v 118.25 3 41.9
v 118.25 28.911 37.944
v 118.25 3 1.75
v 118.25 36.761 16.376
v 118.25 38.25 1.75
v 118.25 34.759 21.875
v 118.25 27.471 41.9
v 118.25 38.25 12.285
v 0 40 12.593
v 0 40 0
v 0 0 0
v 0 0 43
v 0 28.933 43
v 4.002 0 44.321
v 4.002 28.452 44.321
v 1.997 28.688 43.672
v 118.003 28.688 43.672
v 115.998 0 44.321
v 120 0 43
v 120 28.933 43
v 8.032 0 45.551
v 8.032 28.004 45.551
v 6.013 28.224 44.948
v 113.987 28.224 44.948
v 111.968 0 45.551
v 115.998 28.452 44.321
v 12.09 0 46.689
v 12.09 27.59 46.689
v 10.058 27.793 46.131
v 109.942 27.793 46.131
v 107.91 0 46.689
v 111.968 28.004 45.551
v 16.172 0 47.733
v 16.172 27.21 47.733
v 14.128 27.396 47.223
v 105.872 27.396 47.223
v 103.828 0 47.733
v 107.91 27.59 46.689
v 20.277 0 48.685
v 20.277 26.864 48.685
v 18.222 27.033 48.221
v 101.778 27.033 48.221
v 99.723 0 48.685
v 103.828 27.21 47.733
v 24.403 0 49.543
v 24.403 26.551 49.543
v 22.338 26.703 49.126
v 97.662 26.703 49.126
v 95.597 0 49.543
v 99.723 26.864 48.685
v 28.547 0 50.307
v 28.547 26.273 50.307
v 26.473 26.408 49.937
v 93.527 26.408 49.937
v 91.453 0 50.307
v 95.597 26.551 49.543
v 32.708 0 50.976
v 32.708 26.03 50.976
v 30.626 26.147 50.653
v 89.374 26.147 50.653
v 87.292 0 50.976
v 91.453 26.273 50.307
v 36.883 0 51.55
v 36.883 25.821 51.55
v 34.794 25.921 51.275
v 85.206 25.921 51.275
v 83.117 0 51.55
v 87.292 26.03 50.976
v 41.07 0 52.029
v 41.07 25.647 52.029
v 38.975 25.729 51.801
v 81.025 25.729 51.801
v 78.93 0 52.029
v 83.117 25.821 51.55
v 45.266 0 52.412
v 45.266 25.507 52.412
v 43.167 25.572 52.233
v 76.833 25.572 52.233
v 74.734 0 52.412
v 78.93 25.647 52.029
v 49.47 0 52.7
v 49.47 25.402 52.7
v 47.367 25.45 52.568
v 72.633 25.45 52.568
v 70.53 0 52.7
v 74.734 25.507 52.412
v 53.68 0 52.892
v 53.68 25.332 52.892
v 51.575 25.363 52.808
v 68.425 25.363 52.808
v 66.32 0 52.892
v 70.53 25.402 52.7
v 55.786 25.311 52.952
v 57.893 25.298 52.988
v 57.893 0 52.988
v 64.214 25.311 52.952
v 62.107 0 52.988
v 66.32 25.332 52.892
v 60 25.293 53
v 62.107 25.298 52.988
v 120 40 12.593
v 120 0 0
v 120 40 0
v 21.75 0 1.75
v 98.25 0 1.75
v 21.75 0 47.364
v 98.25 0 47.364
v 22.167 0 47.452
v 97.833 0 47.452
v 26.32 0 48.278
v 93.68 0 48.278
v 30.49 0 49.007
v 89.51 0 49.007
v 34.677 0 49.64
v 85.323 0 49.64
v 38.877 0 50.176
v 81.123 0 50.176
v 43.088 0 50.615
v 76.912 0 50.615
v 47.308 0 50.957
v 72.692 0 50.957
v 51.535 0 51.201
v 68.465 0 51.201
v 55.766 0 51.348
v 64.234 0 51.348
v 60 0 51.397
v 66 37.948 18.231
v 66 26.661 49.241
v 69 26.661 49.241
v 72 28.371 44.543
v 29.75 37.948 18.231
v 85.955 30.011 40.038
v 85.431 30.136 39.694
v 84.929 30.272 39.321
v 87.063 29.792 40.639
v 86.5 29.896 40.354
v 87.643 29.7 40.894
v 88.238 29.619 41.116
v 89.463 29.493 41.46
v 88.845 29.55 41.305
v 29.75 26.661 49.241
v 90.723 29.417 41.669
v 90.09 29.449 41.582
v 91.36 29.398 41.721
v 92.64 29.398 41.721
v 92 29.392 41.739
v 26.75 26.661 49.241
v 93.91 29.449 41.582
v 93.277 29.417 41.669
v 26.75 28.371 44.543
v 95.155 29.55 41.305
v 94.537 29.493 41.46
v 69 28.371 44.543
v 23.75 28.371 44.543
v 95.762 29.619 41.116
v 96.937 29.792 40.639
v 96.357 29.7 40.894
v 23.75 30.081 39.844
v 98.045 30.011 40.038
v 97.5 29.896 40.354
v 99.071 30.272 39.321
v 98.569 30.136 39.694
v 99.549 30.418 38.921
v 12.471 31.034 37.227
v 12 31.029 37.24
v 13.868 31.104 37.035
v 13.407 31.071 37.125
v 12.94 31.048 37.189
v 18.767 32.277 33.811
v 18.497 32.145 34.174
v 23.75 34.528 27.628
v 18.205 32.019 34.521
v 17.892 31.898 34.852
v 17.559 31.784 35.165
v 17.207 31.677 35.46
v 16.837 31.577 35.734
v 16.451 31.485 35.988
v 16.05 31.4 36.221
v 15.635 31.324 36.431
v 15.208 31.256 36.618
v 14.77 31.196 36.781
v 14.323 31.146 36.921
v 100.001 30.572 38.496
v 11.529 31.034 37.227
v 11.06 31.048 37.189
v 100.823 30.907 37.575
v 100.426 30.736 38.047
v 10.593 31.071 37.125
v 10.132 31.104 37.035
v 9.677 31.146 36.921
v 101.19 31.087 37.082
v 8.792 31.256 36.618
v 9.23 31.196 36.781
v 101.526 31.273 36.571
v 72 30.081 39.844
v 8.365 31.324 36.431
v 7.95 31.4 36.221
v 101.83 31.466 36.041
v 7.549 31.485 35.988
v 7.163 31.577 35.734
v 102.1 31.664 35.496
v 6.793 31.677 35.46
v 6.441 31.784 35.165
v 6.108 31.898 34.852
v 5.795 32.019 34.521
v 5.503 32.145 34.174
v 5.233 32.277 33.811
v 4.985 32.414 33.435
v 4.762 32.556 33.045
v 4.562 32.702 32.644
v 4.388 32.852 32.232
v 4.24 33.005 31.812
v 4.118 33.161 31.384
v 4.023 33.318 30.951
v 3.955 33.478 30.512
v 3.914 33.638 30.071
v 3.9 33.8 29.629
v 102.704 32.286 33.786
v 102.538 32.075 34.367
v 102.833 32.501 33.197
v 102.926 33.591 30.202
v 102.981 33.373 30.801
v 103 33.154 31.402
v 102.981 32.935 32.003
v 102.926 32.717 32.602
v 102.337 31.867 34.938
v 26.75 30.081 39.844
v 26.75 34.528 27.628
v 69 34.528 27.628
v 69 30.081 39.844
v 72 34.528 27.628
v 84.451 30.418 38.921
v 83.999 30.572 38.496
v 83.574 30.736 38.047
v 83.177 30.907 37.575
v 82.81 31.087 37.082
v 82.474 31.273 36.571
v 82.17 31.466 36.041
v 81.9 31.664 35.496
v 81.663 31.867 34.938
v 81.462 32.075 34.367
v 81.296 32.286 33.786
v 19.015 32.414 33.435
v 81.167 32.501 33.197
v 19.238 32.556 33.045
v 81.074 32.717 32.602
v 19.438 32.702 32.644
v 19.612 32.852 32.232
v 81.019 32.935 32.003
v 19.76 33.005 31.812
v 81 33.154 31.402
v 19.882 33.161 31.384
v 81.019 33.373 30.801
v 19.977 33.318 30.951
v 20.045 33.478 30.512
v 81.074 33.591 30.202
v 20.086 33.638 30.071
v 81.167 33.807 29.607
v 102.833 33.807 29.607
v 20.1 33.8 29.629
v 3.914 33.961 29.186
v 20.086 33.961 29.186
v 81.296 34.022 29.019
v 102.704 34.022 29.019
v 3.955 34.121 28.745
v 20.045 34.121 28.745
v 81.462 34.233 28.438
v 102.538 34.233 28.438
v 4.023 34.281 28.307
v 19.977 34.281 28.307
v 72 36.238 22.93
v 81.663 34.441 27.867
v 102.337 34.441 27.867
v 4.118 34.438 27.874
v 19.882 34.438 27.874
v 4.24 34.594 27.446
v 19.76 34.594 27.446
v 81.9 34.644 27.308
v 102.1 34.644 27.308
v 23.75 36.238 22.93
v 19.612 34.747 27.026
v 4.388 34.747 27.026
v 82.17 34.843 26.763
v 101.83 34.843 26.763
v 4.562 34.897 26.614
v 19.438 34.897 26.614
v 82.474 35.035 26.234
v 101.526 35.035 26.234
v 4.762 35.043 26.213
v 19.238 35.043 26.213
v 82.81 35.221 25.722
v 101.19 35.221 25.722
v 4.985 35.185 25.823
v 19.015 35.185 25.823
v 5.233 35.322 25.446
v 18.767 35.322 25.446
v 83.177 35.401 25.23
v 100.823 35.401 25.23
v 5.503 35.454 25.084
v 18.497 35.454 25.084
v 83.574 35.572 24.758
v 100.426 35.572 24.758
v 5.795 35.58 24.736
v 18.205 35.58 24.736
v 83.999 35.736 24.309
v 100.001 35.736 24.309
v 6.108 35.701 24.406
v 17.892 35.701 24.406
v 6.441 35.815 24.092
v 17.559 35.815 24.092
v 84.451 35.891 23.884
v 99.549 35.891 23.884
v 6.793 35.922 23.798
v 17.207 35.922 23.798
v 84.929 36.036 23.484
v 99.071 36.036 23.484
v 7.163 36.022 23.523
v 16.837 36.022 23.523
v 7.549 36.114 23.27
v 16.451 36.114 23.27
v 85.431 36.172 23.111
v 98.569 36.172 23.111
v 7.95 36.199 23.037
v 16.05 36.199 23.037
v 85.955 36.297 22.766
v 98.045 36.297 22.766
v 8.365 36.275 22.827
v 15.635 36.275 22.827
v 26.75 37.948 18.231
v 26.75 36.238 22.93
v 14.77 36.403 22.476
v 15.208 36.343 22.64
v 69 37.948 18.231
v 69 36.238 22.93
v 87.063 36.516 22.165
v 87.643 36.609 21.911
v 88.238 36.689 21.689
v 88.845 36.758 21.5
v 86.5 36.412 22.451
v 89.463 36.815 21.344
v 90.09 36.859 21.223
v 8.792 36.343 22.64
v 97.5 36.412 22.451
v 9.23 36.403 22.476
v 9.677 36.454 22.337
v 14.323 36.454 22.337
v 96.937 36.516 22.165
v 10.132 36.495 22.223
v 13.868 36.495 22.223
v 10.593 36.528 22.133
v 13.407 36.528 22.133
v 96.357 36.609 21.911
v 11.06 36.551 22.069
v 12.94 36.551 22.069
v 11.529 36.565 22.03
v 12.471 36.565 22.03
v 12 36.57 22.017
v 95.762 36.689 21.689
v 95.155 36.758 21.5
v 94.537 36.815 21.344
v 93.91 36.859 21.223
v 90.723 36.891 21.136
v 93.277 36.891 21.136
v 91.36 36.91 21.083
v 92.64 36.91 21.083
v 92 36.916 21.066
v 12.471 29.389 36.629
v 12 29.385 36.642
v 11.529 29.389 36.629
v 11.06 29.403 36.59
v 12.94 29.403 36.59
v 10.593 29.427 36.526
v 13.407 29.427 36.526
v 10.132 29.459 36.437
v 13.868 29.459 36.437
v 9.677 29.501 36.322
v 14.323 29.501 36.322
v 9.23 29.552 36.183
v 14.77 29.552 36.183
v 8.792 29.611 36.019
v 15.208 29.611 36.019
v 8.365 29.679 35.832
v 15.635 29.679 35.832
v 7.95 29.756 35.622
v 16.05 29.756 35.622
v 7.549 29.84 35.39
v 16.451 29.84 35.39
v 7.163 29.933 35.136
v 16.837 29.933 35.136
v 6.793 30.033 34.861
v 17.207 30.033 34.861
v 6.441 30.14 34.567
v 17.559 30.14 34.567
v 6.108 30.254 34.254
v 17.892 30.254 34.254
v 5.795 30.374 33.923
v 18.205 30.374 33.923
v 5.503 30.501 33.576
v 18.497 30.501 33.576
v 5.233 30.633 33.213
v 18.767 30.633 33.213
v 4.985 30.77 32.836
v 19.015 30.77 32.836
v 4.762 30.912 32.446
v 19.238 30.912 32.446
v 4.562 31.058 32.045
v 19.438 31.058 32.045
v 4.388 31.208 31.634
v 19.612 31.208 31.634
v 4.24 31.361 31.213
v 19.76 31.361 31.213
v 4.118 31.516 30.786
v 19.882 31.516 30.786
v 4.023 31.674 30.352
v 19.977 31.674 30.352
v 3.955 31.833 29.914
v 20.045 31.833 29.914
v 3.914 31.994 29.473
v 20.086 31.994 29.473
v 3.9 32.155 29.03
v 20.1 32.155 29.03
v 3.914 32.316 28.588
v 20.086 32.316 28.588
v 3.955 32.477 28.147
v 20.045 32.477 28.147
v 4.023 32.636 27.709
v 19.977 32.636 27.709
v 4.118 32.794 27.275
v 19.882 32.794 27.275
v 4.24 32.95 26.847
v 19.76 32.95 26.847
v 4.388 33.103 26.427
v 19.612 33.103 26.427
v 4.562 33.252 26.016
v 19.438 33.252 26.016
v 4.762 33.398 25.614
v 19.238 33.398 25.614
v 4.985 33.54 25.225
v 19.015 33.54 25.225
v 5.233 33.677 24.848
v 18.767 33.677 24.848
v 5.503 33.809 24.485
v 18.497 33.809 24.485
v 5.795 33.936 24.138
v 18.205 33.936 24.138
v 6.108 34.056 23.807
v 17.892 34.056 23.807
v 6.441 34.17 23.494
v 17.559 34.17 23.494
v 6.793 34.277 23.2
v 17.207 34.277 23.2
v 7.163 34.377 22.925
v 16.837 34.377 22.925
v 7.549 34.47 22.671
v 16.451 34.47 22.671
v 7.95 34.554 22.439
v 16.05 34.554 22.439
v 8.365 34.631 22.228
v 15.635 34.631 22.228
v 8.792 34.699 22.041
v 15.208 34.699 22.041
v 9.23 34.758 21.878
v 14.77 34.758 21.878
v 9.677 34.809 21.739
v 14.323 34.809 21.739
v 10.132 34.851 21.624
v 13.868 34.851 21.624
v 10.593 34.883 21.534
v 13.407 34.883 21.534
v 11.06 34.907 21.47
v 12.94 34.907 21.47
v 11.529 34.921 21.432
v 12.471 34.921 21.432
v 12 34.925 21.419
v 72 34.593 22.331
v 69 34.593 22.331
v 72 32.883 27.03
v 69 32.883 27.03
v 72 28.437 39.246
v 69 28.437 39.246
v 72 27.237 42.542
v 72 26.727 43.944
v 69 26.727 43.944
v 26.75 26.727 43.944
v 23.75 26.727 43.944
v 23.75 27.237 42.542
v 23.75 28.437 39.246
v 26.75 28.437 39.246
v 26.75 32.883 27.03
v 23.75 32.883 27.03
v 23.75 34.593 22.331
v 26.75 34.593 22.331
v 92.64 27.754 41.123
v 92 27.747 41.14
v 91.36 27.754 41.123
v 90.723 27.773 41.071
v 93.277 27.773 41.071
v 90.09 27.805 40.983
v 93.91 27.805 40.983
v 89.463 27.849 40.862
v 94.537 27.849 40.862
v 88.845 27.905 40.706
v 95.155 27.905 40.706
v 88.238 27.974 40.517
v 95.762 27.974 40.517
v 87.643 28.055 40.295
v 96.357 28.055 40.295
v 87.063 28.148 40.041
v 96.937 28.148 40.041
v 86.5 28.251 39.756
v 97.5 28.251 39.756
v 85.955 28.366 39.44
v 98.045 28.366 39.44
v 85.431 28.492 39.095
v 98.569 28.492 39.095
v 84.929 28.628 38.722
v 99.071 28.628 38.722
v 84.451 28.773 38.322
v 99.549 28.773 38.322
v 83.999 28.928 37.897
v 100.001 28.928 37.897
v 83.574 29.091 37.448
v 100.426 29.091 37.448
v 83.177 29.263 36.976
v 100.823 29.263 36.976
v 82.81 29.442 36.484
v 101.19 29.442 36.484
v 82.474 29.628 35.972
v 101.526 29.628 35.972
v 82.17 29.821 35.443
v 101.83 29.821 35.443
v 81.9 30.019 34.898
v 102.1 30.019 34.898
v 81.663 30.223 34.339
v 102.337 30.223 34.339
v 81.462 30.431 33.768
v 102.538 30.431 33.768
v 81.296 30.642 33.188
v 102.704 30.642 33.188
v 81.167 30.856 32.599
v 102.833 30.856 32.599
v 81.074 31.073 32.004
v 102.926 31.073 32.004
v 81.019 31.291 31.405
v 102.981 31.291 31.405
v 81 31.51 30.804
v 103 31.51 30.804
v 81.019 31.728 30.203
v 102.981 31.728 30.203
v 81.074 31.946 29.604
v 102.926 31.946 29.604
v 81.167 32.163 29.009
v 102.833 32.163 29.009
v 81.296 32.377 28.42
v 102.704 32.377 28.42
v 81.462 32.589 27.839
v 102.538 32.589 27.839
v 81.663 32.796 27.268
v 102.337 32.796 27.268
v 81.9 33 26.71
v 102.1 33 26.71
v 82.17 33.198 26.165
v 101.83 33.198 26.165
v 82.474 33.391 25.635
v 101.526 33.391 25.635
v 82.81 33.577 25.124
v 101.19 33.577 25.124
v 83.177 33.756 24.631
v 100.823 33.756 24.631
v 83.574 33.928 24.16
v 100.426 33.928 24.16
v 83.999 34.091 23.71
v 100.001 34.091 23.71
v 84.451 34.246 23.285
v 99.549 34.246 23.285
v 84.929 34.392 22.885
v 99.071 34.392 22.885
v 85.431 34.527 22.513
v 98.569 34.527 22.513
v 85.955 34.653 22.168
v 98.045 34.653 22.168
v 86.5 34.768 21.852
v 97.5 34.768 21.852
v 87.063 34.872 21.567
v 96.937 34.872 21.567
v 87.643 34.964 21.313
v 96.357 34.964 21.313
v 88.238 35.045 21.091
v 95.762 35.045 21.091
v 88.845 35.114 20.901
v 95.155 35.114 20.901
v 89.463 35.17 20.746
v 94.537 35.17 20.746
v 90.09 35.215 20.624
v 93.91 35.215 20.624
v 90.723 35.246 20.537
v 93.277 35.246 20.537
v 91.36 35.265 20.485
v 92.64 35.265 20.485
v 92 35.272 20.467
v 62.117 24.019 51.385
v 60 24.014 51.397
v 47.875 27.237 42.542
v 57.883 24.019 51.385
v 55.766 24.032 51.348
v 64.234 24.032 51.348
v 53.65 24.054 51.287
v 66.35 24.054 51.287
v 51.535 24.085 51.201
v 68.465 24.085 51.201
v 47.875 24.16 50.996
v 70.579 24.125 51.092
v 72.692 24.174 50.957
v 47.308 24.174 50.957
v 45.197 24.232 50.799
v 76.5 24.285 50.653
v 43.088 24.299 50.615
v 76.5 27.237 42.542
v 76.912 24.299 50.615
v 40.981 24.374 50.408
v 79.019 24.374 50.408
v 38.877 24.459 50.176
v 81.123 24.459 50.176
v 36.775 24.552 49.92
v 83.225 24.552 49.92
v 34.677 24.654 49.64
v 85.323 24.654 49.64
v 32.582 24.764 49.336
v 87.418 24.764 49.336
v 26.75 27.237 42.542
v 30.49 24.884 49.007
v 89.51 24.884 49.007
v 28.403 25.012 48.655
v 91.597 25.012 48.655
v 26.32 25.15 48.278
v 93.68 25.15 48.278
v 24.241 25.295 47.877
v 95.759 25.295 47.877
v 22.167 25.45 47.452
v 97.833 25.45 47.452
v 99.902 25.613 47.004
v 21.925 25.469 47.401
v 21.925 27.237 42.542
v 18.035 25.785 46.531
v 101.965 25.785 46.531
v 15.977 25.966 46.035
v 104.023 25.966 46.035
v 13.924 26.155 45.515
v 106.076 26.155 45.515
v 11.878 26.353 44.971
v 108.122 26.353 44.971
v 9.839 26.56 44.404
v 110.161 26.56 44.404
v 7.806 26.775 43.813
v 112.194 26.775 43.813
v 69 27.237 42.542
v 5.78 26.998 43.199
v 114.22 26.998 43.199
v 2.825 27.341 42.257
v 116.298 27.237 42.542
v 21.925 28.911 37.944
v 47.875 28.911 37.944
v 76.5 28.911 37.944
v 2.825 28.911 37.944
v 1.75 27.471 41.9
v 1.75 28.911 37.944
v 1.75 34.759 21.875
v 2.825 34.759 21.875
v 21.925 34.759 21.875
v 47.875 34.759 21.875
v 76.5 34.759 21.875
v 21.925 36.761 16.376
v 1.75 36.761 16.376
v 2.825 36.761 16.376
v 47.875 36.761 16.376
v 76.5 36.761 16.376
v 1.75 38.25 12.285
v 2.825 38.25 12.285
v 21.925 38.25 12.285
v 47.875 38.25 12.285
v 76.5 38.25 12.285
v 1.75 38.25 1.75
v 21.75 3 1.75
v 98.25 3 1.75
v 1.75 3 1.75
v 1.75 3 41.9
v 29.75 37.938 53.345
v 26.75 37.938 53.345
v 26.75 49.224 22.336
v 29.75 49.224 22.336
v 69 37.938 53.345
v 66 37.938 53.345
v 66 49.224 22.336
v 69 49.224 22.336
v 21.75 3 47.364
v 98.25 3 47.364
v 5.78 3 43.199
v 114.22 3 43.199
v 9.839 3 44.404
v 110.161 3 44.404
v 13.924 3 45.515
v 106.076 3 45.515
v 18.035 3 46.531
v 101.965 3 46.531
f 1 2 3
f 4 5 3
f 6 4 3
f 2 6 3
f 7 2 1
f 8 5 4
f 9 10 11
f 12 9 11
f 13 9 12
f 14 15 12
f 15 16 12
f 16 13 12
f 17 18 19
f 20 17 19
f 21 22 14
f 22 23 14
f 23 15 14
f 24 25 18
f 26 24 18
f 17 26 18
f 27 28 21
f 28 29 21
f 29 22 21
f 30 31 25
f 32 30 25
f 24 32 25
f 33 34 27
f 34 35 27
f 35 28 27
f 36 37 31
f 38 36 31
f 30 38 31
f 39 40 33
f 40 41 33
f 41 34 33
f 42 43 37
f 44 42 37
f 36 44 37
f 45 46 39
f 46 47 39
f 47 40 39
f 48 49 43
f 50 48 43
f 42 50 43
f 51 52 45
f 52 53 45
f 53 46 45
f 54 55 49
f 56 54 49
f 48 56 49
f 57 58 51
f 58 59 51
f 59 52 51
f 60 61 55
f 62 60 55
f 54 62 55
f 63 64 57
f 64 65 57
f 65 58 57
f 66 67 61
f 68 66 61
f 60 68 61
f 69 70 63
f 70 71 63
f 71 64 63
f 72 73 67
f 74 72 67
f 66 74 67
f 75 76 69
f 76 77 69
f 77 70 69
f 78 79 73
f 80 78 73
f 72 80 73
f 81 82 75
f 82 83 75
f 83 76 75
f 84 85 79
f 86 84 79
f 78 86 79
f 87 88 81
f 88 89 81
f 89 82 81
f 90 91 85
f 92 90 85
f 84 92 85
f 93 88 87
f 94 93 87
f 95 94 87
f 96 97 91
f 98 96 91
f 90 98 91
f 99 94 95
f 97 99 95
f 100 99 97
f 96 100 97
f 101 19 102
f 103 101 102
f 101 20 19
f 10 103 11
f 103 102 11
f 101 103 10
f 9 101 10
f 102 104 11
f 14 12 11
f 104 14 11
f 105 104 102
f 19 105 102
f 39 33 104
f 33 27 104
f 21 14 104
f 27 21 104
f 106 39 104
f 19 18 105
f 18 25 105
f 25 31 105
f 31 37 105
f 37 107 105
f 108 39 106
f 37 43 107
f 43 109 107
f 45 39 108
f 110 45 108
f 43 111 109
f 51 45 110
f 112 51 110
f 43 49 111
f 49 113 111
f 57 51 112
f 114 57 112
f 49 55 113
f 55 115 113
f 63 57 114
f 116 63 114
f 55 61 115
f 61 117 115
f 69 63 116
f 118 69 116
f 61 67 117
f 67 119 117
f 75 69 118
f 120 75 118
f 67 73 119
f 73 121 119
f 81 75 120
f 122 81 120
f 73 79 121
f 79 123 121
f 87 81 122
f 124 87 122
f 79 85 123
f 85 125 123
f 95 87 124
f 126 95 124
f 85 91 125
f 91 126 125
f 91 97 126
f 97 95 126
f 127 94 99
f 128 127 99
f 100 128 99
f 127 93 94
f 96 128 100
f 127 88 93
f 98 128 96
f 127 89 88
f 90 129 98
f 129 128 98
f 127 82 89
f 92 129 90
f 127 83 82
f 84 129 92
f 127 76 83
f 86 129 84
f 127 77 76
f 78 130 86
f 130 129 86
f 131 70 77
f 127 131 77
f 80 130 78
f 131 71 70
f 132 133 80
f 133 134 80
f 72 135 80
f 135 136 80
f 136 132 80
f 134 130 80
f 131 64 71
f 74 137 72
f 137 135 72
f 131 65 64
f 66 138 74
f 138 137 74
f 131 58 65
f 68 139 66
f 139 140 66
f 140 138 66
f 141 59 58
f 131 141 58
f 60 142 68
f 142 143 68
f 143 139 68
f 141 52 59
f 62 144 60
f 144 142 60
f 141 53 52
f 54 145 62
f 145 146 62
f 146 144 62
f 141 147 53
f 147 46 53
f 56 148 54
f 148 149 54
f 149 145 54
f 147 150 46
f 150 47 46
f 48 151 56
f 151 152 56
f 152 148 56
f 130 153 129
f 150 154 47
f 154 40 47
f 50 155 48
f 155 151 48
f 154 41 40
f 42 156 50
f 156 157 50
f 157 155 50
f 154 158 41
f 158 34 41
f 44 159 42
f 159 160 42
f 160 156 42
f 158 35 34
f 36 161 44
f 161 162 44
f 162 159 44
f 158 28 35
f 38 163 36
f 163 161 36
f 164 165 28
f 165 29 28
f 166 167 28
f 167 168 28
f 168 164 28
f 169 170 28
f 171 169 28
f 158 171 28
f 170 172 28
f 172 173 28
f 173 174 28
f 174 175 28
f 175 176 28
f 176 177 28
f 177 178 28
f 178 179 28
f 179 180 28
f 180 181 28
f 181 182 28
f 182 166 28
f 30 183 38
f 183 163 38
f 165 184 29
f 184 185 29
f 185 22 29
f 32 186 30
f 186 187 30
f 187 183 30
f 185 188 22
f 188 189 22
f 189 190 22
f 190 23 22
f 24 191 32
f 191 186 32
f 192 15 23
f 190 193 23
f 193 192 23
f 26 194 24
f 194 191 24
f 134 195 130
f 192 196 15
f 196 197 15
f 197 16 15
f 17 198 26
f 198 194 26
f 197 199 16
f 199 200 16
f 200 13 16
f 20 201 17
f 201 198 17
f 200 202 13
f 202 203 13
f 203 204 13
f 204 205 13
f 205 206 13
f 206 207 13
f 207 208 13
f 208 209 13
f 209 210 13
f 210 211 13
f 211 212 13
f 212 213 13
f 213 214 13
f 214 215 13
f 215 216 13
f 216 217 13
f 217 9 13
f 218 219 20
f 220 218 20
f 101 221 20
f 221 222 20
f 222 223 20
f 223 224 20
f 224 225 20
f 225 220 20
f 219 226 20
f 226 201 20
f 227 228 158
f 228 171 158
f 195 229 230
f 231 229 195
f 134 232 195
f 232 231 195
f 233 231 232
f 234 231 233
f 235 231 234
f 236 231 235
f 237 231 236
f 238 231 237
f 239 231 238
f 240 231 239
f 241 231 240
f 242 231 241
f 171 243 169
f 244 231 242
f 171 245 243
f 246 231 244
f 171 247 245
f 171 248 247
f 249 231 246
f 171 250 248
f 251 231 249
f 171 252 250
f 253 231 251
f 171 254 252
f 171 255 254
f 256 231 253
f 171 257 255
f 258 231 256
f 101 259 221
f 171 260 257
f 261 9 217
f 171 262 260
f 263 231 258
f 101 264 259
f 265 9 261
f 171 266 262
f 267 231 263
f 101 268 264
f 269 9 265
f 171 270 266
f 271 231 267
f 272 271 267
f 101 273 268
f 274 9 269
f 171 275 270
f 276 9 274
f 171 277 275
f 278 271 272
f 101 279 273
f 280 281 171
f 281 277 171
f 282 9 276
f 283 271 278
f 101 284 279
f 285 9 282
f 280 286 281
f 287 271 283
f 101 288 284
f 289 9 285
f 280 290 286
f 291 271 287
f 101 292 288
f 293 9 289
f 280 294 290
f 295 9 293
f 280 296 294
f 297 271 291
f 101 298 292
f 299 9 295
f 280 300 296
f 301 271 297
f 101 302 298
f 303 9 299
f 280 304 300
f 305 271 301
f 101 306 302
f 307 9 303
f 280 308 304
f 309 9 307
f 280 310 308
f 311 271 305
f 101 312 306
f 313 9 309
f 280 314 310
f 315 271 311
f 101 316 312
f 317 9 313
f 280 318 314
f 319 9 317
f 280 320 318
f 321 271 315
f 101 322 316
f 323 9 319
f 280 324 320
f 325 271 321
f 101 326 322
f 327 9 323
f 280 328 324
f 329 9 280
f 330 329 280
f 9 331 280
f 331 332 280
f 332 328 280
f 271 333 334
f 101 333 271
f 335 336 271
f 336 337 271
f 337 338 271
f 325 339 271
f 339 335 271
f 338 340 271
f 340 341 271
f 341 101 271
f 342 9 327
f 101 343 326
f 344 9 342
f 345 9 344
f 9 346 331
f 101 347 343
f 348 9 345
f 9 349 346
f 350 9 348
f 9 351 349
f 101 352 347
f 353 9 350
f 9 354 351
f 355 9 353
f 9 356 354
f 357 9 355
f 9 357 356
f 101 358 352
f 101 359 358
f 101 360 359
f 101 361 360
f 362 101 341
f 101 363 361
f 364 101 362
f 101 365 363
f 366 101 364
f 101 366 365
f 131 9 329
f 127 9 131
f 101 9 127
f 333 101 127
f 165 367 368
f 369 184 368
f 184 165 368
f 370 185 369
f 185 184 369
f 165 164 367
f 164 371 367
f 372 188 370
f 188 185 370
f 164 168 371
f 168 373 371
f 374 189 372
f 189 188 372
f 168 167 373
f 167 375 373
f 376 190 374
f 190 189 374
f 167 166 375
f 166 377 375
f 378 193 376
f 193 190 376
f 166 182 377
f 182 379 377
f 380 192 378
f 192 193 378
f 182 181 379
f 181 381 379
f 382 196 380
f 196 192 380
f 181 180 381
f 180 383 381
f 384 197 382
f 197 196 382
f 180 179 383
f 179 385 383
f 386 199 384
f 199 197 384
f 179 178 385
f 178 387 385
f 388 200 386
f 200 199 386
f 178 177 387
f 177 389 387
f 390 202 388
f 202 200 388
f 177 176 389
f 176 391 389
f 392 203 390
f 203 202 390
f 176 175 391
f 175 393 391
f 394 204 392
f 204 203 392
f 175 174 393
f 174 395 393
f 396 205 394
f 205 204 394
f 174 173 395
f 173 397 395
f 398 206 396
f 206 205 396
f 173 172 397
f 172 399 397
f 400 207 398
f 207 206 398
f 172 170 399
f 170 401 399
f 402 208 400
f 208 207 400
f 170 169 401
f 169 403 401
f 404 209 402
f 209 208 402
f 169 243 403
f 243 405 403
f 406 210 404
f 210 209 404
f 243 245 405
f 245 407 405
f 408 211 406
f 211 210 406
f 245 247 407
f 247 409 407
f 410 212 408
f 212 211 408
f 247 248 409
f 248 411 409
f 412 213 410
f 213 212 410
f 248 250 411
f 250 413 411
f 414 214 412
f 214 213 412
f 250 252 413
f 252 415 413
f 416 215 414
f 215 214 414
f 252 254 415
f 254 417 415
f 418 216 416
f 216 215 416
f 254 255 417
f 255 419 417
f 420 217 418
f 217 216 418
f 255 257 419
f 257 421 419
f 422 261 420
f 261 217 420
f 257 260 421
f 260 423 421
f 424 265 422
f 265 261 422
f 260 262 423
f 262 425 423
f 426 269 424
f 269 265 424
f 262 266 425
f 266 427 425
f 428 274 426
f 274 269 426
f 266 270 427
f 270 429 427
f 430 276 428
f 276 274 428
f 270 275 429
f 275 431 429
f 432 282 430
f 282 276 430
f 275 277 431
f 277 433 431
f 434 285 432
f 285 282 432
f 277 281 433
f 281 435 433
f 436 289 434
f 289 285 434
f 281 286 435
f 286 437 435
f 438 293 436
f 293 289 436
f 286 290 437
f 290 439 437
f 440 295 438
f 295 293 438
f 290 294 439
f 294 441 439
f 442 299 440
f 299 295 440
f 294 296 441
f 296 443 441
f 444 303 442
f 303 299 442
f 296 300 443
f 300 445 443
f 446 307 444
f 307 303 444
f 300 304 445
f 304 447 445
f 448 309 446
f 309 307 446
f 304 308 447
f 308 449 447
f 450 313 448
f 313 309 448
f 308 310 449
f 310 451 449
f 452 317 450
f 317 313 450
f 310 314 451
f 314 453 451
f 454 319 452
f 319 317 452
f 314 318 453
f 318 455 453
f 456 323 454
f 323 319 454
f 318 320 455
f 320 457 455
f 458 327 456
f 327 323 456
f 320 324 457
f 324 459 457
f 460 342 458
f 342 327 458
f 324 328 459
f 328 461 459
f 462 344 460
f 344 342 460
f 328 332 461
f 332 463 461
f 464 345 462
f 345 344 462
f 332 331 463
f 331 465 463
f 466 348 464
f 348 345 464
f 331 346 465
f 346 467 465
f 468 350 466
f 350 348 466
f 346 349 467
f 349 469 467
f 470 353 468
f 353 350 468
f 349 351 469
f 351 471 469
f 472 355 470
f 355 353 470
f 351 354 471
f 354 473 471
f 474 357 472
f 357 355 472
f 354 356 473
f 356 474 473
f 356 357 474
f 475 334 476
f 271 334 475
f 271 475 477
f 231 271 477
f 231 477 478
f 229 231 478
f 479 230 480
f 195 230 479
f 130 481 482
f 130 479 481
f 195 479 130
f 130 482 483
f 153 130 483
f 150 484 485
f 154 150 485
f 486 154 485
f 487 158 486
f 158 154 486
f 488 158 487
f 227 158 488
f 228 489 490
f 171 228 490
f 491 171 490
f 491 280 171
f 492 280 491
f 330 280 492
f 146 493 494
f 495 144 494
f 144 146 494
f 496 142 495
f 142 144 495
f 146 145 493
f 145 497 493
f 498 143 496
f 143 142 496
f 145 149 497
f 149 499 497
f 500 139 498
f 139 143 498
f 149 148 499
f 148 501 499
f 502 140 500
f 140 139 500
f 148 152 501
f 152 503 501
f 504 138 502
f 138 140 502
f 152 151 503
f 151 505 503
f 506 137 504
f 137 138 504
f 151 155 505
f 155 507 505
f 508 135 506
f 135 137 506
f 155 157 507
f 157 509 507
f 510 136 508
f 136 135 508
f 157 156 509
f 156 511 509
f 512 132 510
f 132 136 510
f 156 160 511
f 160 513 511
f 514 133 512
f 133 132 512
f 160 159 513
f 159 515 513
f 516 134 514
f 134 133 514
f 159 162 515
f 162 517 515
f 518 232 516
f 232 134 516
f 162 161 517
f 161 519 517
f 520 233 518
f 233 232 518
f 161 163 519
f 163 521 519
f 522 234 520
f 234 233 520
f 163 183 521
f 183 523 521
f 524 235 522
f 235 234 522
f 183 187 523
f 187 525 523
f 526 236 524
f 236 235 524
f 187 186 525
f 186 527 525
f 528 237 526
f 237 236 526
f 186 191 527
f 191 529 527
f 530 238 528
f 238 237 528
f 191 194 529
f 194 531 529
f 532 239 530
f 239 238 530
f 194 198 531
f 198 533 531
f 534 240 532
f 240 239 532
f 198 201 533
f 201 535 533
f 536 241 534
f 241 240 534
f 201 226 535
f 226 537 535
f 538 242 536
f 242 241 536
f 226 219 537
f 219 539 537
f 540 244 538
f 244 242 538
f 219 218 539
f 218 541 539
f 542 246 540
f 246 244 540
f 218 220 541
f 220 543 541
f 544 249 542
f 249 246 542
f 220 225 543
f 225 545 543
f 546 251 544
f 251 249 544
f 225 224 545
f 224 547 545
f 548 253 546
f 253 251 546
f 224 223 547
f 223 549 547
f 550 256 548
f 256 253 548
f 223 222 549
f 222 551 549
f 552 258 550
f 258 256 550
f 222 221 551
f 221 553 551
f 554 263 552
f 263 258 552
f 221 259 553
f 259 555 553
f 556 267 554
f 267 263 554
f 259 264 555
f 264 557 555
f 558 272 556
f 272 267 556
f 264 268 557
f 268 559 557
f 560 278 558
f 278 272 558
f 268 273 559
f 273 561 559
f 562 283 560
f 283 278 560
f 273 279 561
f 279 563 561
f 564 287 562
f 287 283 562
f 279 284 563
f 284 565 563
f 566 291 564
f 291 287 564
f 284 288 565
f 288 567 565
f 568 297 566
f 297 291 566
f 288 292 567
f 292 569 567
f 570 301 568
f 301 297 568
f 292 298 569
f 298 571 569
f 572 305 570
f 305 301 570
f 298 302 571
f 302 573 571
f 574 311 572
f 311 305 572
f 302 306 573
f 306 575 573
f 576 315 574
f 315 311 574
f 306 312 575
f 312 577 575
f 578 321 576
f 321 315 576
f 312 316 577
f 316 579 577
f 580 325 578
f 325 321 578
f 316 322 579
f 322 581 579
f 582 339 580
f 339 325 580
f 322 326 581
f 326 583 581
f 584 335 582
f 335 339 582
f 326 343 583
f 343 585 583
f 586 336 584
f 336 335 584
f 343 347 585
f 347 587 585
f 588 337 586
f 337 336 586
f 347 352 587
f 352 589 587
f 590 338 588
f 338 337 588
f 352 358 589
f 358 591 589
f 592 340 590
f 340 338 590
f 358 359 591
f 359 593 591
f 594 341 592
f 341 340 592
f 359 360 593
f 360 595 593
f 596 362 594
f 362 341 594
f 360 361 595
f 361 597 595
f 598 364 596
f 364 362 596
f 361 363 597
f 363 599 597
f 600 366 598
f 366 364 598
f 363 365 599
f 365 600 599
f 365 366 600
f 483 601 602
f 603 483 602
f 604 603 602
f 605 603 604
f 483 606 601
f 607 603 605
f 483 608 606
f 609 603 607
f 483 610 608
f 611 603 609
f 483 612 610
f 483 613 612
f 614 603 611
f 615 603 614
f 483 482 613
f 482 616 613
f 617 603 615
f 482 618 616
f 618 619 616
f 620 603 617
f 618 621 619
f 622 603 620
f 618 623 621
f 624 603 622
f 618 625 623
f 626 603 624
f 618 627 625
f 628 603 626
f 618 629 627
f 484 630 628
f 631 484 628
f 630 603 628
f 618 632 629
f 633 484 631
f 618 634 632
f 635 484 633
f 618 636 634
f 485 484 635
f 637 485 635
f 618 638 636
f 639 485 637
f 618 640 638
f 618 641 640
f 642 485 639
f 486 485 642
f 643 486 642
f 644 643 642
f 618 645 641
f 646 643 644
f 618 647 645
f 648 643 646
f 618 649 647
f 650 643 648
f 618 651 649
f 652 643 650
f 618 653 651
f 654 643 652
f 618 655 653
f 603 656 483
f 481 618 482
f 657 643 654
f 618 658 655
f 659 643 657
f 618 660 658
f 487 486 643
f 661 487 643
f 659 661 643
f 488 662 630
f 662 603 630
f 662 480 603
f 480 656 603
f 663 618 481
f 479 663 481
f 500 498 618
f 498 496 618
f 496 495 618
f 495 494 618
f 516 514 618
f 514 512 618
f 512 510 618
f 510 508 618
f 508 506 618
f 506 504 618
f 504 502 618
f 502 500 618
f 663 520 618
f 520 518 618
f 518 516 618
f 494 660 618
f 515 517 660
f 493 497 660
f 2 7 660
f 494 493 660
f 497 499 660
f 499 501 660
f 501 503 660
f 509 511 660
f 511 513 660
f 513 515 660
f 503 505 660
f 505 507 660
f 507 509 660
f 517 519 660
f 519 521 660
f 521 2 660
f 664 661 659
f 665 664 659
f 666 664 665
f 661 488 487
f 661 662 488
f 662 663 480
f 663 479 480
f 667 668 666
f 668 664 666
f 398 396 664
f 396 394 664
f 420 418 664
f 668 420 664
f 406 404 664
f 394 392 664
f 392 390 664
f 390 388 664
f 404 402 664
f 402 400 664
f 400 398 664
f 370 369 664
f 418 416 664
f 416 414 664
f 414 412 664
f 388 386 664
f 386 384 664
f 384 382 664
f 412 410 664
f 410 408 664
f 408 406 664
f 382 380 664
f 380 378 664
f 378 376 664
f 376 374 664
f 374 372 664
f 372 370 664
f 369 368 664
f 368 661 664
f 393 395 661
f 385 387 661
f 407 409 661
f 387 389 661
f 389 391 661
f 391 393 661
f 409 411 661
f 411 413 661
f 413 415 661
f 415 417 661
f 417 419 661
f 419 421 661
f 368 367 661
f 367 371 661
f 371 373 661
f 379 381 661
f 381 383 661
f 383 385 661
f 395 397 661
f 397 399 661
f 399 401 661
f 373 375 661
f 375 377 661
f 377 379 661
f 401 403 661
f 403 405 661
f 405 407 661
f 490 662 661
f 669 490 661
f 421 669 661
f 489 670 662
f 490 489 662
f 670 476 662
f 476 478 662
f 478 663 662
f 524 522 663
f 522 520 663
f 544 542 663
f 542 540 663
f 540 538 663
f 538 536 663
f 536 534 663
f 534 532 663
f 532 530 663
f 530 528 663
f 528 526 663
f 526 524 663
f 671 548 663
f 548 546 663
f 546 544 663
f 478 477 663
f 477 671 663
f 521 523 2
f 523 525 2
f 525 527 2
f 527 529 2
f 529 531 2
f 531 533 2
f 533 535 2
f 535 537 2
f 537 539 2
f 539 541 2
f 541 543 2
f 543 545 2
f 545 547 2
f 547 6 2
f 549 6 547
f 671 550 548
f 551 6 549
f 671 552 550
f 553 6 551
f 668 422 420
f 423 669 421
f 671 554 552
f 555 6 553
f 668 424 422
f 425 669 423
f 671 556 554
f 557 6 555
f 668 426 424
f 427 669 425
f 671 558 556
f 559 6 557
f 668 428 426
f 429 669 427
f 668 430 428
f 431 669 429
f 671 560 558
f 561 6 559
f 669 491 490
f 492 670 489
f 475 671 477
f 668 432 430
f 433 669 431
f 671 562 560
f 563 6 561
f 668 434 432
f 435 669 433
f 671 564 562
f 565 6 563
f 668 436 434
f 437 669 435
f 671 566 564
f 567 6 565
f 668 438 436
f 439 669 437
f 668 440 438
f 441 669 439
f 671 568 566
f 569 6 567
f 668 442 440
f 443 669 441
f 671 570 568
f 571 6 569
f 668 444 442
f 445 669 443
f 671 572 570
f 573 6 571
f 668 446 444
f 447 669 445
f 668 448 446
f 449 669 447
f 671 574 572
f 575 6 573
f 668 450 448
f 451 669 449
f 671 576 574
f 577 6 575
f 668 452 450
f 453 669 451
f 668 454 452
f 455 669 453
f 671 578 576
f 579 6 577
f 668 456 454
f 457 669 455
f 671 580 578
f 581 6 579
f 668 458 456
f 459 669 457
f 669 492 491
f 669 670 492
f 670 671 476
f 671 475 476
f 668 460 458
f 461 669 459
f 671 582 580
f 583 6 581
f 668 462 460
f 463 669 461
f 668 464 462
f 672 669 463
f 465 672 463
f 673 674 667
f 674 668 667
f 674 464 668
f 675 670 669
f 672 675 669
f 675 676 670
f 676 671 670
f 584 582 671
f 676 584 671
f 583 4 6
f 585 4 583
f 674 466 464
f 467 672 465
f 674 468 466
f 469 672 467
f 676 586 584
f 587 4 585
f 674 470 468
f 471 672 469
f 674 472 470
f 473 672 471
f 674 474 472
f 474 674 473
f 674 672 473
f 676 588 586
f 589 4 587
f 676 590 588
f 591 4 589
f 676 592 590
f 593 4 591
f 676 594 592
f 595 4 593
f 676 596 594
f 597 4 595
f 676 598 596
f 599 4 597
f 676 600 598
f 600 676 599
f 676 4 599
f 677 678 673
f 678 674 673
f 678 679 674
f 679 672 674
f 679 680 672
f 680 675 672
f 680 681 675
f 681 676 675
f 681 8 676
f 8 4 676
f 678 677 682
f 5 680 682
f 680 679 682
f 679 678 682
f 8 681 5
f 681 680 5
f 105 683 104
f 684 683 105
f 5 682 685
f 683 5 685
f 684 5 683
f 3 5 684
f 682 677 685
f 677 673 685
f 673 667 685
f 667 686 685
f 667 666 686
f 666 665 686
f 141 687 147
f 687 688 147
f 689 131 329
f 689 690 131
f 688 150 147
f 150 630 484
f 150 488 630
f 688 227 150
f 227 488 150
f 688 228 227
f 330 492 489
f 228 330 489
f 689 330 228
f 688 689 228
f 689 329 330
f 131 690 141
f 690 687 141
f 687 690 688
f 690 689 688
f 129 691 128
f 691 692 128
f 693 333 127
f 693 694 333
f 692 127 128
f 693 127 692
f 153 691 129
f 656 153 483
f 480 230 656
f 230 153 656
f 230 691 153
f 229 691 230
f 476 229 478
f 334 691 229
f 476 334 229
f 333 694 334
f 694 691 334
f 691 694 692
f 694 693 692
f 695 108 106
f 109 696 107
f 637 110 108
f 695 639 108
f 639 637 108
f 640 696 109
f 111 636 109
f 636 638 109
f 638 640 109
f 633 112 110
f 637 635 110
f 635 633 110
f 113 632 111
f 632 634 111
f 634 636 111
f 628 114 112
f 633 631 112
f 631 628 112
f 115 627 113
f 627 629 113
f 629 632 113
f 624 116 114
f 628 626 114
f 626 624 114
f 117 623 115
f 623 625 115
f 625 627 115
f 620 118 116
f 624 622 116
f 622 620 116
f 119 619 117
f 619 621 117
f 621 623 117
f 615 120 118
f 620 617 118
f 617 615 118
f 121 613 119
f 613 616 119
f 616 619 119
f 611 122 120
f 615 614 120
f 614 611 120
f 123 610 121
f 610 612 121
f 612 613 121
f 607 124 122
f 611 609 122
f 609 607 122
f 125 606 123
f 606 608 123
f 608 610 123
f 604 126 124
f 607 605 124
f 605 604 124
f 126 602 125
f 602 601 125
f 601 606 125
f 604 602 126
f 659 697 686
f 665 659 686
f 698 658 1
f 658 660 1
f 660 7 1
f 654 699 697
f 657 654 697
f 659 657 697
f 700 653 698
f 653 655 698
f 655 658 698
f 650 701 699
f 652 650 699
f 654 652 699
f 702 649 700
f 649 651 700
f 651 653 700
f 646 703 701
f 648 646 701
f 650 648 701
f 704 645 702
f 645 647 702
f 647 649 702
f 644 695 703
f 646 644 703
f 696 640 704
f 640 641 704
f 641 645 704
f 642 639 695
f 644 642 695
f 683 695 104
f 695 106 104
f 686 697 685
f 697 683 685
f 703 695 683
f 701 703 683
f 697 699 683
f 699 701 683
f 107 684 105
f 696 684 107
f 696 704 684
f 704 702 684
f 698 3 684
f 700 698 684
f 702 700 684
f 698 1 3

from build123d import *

# Parameters (mm, degrees)
BOSS_EXTRUDE1_DEPTH      = 40
CUT_EXTRUDE1_DEPTH       = 121
SKETCH3_R                = 11
SKETCH3_R_2              = 8.1
CUT_EXTRUDE3_DEPTH       = 1.75
SKETCH5_R                = 15
CUT_EXTRUDE4_DEPTH       = 41.144838819
CUT_EXTRUDE7_DEPTH       = 116.5
SKETCH11_W               = 3
SKETCH11_H               = 33
BOSS_EXTRUDE2_DEPTH      = 12
BOSS_EXTRUDE2_DEPTH_BACK = 1.75
CUT_EXTRUDE8_REACH       = 51.224
BOSS_EXTRUDE3_DEPTH      = 3


with BuildPart() as part:
    # Sketch1 → Boss-Extrude1 (new body)
    with BuildSketch(Plane(origin=(0, 0, 0), x_dir=(1, 0, 0), z_dir=(0, 1, 0))):
        with BuildLine():
            Line((0, 0), (120, 0))
            Line((120, 0), (120, -43))
            ThreePointArc((120, -43), (60, -53), (0, -43))
            Line((0, -43), (0, 0))
        make_face()
    extrude(amount=BOSS_EXTRUDE1_DEPTH)

    # Sketch2 → Cut-Extrude1 (cut, through all)
    with BuildSketch(Plane(origin=(120, 0, 0), x_dir=(0, 0, -1), z_dir=(1, 0, 0))):
        Polygon((-12.593217306, 40), (-53, 25.293133837), (-53, 40), align=None)
    extrude(amount=-CUT_EXTRUDE1_DEPTH, mode=Mode.SUBTRACT)

    # Sketch3 → Cut-Extrude3 (cut)
    with BuildSketch(Plane(origin=(0, 39.368270888, 14.328878778), x_dir=(1, 0, 0), z_dir=(0, 0.939692621, 0.342020143))):
        with Locations((92, -18.169172911)):
            Circle(SKETCH3_R)
        with Locations((12, -16.281893201)):
            Circle(SKETCH3_R_2)
        Polygon((69, -32.152947642), (72, -32.152947642), (72, -27.152947642), (69, -27.152947642), (69, -14.152947642), (72, -14.152947642), (72, -9.152947642), (69, -9.152947642), (69, -4.152947642), (66, -4.152947642), (66, -37.152947642), (69, -37.152947642), align=None)
        Polygon((26.75, -32.152947642), (26.75, -37.152947642), (29.75, -37.152947642), (29.75, -4.152947642), (26.75, -4.152947642), (26.75, -9.152947642), (23.75, -9.152947642), (23.75, -14.152947642), (26.75, -14.152947642), (26.75, -27.152947642), (23.75, -27.152947642), (23.75, -32.152947642), align=None)
    extrude(amount=-CUT_EXTRUDE3_DEPTH, mode=Mode.SUBTRACT)

    # Sketch5 → Cut-Extrude4 (cut, through all)
    with BuildSketch(Plane(origin=(0, 37.723808801, 13.730343527), x_dir=(1, 0, 0), z_dir=(0, 0.939692621, 0.342020143))):
        with Locations((92, -18.169172911)):
            Circle(SKETCH5_R)
    extrude(amount=-CUT_EXTRUDE4_DEPTH, mode=Mode.SUBTRACT)

    # Sketch9 → Cut-Extrude7 (cut)
    with BuildSketch(Plane(origin=(118.25, 0, 0), x_dir=(0, 0, -1), z_dir=(1, 0, 0))):
        Polygon((-1.75, 0), (-1.75, 38.25), (-12.28464509, 38.25), (-41.900468263, 27.470721902), (-41.900468263, 0), align=None)
    extrude(amount=-CUT_EXTRUDE7_DEPTH, mode=Mode.SUBTRACT)

    # Sketch11 → Boss-Extrude2 (add, two sides)
    with BuildSketch(Plane(origin=(0, 39.368270888, 14.328878778), x_dir=(1, 0, 0), z_dir=(0, 0.939692621, 0.342020143))) as boss_extrude2_sk:
        with Locations((28.25, -20.652947642)):
            Rectangle(SKETCH11_W, SKETCH11_H)
        with Locations((67.5, -20.652947642)):
            Rectangle(SKETCH11_W, SKETCH11_H)
    extrude(amount=BOSS_EXTRUDE2_DEPTH)
    extrude(boss_extrude2_sk.sketch, amount=-BOSS_EXTRUDE2_DEPTH_BACK)

    # Cut-Extrude8: up to this face of the body (flat: up to its plane)
    cut_extrude8_end = Plane(part.part.faces().sort_by_distance((59.86605923, 33.016543965, 26.663447373))[0])
    # Sketch13 → Cut-Extrude8 (cut, up to the picked face)
    with BuildSketch(Plane.XZ, mode=Mode.PRIVATE) as cut_extrude8_sk1:
        with BuildLine():
            Line((1.75, 41.900468263), (118.25, 41.900468263))
            ThreePointArc((118.25, 41.900468263), (60, 51.396933895), (1.75, 41.900468263))
        make_face()
    cut_extrude8_tool1 = split(extrude(cut_extrude8_sk1.sketch, amount=-CUT_EXTRUDE8_REACH, mode=Mode.PRIVATE), bisect_by=cut_extrude8_end, keep=Keep.BOTH, mode=Mode.PRIVATE)
    add(cut_extrude8_tool1.solids().sort_by_distance((60, 0, 45.707612))[0], mode=Mode.SUBTRACT)

    # Sketch14 → Boss-Extrude3 (add)
    with BuildSketch(Plane.XZ):
        with BuildLine():
            Line((1.75, 1.75), (21.75, 1.75))
            Line((21.75, 1.75), (21.75, 47.363800311))
            ThreePointArc((21.75, 47.363800311), (11.672735446, 44.914982019), (1.75, 41.900468263))
            Line((1.75, 41.900468263), (1.75, 1.75))
        make_face()
        with BuildLine():
            Line((118.25, 1.75), (118.25, 41.900468263))
            ThreePointArc((118.25, 41.900468263), (108.327264554, 44.914982019), (98.25, 47.363800311))
            Line((98.25, 47.363800311), (98.25, 1.75))
            Line((98.25, 1.75), (118.25, 1.75))
        make_face()
    extrude(amount=-BOSS_EXTRUDE3_DEPTH)


solid = part.part
